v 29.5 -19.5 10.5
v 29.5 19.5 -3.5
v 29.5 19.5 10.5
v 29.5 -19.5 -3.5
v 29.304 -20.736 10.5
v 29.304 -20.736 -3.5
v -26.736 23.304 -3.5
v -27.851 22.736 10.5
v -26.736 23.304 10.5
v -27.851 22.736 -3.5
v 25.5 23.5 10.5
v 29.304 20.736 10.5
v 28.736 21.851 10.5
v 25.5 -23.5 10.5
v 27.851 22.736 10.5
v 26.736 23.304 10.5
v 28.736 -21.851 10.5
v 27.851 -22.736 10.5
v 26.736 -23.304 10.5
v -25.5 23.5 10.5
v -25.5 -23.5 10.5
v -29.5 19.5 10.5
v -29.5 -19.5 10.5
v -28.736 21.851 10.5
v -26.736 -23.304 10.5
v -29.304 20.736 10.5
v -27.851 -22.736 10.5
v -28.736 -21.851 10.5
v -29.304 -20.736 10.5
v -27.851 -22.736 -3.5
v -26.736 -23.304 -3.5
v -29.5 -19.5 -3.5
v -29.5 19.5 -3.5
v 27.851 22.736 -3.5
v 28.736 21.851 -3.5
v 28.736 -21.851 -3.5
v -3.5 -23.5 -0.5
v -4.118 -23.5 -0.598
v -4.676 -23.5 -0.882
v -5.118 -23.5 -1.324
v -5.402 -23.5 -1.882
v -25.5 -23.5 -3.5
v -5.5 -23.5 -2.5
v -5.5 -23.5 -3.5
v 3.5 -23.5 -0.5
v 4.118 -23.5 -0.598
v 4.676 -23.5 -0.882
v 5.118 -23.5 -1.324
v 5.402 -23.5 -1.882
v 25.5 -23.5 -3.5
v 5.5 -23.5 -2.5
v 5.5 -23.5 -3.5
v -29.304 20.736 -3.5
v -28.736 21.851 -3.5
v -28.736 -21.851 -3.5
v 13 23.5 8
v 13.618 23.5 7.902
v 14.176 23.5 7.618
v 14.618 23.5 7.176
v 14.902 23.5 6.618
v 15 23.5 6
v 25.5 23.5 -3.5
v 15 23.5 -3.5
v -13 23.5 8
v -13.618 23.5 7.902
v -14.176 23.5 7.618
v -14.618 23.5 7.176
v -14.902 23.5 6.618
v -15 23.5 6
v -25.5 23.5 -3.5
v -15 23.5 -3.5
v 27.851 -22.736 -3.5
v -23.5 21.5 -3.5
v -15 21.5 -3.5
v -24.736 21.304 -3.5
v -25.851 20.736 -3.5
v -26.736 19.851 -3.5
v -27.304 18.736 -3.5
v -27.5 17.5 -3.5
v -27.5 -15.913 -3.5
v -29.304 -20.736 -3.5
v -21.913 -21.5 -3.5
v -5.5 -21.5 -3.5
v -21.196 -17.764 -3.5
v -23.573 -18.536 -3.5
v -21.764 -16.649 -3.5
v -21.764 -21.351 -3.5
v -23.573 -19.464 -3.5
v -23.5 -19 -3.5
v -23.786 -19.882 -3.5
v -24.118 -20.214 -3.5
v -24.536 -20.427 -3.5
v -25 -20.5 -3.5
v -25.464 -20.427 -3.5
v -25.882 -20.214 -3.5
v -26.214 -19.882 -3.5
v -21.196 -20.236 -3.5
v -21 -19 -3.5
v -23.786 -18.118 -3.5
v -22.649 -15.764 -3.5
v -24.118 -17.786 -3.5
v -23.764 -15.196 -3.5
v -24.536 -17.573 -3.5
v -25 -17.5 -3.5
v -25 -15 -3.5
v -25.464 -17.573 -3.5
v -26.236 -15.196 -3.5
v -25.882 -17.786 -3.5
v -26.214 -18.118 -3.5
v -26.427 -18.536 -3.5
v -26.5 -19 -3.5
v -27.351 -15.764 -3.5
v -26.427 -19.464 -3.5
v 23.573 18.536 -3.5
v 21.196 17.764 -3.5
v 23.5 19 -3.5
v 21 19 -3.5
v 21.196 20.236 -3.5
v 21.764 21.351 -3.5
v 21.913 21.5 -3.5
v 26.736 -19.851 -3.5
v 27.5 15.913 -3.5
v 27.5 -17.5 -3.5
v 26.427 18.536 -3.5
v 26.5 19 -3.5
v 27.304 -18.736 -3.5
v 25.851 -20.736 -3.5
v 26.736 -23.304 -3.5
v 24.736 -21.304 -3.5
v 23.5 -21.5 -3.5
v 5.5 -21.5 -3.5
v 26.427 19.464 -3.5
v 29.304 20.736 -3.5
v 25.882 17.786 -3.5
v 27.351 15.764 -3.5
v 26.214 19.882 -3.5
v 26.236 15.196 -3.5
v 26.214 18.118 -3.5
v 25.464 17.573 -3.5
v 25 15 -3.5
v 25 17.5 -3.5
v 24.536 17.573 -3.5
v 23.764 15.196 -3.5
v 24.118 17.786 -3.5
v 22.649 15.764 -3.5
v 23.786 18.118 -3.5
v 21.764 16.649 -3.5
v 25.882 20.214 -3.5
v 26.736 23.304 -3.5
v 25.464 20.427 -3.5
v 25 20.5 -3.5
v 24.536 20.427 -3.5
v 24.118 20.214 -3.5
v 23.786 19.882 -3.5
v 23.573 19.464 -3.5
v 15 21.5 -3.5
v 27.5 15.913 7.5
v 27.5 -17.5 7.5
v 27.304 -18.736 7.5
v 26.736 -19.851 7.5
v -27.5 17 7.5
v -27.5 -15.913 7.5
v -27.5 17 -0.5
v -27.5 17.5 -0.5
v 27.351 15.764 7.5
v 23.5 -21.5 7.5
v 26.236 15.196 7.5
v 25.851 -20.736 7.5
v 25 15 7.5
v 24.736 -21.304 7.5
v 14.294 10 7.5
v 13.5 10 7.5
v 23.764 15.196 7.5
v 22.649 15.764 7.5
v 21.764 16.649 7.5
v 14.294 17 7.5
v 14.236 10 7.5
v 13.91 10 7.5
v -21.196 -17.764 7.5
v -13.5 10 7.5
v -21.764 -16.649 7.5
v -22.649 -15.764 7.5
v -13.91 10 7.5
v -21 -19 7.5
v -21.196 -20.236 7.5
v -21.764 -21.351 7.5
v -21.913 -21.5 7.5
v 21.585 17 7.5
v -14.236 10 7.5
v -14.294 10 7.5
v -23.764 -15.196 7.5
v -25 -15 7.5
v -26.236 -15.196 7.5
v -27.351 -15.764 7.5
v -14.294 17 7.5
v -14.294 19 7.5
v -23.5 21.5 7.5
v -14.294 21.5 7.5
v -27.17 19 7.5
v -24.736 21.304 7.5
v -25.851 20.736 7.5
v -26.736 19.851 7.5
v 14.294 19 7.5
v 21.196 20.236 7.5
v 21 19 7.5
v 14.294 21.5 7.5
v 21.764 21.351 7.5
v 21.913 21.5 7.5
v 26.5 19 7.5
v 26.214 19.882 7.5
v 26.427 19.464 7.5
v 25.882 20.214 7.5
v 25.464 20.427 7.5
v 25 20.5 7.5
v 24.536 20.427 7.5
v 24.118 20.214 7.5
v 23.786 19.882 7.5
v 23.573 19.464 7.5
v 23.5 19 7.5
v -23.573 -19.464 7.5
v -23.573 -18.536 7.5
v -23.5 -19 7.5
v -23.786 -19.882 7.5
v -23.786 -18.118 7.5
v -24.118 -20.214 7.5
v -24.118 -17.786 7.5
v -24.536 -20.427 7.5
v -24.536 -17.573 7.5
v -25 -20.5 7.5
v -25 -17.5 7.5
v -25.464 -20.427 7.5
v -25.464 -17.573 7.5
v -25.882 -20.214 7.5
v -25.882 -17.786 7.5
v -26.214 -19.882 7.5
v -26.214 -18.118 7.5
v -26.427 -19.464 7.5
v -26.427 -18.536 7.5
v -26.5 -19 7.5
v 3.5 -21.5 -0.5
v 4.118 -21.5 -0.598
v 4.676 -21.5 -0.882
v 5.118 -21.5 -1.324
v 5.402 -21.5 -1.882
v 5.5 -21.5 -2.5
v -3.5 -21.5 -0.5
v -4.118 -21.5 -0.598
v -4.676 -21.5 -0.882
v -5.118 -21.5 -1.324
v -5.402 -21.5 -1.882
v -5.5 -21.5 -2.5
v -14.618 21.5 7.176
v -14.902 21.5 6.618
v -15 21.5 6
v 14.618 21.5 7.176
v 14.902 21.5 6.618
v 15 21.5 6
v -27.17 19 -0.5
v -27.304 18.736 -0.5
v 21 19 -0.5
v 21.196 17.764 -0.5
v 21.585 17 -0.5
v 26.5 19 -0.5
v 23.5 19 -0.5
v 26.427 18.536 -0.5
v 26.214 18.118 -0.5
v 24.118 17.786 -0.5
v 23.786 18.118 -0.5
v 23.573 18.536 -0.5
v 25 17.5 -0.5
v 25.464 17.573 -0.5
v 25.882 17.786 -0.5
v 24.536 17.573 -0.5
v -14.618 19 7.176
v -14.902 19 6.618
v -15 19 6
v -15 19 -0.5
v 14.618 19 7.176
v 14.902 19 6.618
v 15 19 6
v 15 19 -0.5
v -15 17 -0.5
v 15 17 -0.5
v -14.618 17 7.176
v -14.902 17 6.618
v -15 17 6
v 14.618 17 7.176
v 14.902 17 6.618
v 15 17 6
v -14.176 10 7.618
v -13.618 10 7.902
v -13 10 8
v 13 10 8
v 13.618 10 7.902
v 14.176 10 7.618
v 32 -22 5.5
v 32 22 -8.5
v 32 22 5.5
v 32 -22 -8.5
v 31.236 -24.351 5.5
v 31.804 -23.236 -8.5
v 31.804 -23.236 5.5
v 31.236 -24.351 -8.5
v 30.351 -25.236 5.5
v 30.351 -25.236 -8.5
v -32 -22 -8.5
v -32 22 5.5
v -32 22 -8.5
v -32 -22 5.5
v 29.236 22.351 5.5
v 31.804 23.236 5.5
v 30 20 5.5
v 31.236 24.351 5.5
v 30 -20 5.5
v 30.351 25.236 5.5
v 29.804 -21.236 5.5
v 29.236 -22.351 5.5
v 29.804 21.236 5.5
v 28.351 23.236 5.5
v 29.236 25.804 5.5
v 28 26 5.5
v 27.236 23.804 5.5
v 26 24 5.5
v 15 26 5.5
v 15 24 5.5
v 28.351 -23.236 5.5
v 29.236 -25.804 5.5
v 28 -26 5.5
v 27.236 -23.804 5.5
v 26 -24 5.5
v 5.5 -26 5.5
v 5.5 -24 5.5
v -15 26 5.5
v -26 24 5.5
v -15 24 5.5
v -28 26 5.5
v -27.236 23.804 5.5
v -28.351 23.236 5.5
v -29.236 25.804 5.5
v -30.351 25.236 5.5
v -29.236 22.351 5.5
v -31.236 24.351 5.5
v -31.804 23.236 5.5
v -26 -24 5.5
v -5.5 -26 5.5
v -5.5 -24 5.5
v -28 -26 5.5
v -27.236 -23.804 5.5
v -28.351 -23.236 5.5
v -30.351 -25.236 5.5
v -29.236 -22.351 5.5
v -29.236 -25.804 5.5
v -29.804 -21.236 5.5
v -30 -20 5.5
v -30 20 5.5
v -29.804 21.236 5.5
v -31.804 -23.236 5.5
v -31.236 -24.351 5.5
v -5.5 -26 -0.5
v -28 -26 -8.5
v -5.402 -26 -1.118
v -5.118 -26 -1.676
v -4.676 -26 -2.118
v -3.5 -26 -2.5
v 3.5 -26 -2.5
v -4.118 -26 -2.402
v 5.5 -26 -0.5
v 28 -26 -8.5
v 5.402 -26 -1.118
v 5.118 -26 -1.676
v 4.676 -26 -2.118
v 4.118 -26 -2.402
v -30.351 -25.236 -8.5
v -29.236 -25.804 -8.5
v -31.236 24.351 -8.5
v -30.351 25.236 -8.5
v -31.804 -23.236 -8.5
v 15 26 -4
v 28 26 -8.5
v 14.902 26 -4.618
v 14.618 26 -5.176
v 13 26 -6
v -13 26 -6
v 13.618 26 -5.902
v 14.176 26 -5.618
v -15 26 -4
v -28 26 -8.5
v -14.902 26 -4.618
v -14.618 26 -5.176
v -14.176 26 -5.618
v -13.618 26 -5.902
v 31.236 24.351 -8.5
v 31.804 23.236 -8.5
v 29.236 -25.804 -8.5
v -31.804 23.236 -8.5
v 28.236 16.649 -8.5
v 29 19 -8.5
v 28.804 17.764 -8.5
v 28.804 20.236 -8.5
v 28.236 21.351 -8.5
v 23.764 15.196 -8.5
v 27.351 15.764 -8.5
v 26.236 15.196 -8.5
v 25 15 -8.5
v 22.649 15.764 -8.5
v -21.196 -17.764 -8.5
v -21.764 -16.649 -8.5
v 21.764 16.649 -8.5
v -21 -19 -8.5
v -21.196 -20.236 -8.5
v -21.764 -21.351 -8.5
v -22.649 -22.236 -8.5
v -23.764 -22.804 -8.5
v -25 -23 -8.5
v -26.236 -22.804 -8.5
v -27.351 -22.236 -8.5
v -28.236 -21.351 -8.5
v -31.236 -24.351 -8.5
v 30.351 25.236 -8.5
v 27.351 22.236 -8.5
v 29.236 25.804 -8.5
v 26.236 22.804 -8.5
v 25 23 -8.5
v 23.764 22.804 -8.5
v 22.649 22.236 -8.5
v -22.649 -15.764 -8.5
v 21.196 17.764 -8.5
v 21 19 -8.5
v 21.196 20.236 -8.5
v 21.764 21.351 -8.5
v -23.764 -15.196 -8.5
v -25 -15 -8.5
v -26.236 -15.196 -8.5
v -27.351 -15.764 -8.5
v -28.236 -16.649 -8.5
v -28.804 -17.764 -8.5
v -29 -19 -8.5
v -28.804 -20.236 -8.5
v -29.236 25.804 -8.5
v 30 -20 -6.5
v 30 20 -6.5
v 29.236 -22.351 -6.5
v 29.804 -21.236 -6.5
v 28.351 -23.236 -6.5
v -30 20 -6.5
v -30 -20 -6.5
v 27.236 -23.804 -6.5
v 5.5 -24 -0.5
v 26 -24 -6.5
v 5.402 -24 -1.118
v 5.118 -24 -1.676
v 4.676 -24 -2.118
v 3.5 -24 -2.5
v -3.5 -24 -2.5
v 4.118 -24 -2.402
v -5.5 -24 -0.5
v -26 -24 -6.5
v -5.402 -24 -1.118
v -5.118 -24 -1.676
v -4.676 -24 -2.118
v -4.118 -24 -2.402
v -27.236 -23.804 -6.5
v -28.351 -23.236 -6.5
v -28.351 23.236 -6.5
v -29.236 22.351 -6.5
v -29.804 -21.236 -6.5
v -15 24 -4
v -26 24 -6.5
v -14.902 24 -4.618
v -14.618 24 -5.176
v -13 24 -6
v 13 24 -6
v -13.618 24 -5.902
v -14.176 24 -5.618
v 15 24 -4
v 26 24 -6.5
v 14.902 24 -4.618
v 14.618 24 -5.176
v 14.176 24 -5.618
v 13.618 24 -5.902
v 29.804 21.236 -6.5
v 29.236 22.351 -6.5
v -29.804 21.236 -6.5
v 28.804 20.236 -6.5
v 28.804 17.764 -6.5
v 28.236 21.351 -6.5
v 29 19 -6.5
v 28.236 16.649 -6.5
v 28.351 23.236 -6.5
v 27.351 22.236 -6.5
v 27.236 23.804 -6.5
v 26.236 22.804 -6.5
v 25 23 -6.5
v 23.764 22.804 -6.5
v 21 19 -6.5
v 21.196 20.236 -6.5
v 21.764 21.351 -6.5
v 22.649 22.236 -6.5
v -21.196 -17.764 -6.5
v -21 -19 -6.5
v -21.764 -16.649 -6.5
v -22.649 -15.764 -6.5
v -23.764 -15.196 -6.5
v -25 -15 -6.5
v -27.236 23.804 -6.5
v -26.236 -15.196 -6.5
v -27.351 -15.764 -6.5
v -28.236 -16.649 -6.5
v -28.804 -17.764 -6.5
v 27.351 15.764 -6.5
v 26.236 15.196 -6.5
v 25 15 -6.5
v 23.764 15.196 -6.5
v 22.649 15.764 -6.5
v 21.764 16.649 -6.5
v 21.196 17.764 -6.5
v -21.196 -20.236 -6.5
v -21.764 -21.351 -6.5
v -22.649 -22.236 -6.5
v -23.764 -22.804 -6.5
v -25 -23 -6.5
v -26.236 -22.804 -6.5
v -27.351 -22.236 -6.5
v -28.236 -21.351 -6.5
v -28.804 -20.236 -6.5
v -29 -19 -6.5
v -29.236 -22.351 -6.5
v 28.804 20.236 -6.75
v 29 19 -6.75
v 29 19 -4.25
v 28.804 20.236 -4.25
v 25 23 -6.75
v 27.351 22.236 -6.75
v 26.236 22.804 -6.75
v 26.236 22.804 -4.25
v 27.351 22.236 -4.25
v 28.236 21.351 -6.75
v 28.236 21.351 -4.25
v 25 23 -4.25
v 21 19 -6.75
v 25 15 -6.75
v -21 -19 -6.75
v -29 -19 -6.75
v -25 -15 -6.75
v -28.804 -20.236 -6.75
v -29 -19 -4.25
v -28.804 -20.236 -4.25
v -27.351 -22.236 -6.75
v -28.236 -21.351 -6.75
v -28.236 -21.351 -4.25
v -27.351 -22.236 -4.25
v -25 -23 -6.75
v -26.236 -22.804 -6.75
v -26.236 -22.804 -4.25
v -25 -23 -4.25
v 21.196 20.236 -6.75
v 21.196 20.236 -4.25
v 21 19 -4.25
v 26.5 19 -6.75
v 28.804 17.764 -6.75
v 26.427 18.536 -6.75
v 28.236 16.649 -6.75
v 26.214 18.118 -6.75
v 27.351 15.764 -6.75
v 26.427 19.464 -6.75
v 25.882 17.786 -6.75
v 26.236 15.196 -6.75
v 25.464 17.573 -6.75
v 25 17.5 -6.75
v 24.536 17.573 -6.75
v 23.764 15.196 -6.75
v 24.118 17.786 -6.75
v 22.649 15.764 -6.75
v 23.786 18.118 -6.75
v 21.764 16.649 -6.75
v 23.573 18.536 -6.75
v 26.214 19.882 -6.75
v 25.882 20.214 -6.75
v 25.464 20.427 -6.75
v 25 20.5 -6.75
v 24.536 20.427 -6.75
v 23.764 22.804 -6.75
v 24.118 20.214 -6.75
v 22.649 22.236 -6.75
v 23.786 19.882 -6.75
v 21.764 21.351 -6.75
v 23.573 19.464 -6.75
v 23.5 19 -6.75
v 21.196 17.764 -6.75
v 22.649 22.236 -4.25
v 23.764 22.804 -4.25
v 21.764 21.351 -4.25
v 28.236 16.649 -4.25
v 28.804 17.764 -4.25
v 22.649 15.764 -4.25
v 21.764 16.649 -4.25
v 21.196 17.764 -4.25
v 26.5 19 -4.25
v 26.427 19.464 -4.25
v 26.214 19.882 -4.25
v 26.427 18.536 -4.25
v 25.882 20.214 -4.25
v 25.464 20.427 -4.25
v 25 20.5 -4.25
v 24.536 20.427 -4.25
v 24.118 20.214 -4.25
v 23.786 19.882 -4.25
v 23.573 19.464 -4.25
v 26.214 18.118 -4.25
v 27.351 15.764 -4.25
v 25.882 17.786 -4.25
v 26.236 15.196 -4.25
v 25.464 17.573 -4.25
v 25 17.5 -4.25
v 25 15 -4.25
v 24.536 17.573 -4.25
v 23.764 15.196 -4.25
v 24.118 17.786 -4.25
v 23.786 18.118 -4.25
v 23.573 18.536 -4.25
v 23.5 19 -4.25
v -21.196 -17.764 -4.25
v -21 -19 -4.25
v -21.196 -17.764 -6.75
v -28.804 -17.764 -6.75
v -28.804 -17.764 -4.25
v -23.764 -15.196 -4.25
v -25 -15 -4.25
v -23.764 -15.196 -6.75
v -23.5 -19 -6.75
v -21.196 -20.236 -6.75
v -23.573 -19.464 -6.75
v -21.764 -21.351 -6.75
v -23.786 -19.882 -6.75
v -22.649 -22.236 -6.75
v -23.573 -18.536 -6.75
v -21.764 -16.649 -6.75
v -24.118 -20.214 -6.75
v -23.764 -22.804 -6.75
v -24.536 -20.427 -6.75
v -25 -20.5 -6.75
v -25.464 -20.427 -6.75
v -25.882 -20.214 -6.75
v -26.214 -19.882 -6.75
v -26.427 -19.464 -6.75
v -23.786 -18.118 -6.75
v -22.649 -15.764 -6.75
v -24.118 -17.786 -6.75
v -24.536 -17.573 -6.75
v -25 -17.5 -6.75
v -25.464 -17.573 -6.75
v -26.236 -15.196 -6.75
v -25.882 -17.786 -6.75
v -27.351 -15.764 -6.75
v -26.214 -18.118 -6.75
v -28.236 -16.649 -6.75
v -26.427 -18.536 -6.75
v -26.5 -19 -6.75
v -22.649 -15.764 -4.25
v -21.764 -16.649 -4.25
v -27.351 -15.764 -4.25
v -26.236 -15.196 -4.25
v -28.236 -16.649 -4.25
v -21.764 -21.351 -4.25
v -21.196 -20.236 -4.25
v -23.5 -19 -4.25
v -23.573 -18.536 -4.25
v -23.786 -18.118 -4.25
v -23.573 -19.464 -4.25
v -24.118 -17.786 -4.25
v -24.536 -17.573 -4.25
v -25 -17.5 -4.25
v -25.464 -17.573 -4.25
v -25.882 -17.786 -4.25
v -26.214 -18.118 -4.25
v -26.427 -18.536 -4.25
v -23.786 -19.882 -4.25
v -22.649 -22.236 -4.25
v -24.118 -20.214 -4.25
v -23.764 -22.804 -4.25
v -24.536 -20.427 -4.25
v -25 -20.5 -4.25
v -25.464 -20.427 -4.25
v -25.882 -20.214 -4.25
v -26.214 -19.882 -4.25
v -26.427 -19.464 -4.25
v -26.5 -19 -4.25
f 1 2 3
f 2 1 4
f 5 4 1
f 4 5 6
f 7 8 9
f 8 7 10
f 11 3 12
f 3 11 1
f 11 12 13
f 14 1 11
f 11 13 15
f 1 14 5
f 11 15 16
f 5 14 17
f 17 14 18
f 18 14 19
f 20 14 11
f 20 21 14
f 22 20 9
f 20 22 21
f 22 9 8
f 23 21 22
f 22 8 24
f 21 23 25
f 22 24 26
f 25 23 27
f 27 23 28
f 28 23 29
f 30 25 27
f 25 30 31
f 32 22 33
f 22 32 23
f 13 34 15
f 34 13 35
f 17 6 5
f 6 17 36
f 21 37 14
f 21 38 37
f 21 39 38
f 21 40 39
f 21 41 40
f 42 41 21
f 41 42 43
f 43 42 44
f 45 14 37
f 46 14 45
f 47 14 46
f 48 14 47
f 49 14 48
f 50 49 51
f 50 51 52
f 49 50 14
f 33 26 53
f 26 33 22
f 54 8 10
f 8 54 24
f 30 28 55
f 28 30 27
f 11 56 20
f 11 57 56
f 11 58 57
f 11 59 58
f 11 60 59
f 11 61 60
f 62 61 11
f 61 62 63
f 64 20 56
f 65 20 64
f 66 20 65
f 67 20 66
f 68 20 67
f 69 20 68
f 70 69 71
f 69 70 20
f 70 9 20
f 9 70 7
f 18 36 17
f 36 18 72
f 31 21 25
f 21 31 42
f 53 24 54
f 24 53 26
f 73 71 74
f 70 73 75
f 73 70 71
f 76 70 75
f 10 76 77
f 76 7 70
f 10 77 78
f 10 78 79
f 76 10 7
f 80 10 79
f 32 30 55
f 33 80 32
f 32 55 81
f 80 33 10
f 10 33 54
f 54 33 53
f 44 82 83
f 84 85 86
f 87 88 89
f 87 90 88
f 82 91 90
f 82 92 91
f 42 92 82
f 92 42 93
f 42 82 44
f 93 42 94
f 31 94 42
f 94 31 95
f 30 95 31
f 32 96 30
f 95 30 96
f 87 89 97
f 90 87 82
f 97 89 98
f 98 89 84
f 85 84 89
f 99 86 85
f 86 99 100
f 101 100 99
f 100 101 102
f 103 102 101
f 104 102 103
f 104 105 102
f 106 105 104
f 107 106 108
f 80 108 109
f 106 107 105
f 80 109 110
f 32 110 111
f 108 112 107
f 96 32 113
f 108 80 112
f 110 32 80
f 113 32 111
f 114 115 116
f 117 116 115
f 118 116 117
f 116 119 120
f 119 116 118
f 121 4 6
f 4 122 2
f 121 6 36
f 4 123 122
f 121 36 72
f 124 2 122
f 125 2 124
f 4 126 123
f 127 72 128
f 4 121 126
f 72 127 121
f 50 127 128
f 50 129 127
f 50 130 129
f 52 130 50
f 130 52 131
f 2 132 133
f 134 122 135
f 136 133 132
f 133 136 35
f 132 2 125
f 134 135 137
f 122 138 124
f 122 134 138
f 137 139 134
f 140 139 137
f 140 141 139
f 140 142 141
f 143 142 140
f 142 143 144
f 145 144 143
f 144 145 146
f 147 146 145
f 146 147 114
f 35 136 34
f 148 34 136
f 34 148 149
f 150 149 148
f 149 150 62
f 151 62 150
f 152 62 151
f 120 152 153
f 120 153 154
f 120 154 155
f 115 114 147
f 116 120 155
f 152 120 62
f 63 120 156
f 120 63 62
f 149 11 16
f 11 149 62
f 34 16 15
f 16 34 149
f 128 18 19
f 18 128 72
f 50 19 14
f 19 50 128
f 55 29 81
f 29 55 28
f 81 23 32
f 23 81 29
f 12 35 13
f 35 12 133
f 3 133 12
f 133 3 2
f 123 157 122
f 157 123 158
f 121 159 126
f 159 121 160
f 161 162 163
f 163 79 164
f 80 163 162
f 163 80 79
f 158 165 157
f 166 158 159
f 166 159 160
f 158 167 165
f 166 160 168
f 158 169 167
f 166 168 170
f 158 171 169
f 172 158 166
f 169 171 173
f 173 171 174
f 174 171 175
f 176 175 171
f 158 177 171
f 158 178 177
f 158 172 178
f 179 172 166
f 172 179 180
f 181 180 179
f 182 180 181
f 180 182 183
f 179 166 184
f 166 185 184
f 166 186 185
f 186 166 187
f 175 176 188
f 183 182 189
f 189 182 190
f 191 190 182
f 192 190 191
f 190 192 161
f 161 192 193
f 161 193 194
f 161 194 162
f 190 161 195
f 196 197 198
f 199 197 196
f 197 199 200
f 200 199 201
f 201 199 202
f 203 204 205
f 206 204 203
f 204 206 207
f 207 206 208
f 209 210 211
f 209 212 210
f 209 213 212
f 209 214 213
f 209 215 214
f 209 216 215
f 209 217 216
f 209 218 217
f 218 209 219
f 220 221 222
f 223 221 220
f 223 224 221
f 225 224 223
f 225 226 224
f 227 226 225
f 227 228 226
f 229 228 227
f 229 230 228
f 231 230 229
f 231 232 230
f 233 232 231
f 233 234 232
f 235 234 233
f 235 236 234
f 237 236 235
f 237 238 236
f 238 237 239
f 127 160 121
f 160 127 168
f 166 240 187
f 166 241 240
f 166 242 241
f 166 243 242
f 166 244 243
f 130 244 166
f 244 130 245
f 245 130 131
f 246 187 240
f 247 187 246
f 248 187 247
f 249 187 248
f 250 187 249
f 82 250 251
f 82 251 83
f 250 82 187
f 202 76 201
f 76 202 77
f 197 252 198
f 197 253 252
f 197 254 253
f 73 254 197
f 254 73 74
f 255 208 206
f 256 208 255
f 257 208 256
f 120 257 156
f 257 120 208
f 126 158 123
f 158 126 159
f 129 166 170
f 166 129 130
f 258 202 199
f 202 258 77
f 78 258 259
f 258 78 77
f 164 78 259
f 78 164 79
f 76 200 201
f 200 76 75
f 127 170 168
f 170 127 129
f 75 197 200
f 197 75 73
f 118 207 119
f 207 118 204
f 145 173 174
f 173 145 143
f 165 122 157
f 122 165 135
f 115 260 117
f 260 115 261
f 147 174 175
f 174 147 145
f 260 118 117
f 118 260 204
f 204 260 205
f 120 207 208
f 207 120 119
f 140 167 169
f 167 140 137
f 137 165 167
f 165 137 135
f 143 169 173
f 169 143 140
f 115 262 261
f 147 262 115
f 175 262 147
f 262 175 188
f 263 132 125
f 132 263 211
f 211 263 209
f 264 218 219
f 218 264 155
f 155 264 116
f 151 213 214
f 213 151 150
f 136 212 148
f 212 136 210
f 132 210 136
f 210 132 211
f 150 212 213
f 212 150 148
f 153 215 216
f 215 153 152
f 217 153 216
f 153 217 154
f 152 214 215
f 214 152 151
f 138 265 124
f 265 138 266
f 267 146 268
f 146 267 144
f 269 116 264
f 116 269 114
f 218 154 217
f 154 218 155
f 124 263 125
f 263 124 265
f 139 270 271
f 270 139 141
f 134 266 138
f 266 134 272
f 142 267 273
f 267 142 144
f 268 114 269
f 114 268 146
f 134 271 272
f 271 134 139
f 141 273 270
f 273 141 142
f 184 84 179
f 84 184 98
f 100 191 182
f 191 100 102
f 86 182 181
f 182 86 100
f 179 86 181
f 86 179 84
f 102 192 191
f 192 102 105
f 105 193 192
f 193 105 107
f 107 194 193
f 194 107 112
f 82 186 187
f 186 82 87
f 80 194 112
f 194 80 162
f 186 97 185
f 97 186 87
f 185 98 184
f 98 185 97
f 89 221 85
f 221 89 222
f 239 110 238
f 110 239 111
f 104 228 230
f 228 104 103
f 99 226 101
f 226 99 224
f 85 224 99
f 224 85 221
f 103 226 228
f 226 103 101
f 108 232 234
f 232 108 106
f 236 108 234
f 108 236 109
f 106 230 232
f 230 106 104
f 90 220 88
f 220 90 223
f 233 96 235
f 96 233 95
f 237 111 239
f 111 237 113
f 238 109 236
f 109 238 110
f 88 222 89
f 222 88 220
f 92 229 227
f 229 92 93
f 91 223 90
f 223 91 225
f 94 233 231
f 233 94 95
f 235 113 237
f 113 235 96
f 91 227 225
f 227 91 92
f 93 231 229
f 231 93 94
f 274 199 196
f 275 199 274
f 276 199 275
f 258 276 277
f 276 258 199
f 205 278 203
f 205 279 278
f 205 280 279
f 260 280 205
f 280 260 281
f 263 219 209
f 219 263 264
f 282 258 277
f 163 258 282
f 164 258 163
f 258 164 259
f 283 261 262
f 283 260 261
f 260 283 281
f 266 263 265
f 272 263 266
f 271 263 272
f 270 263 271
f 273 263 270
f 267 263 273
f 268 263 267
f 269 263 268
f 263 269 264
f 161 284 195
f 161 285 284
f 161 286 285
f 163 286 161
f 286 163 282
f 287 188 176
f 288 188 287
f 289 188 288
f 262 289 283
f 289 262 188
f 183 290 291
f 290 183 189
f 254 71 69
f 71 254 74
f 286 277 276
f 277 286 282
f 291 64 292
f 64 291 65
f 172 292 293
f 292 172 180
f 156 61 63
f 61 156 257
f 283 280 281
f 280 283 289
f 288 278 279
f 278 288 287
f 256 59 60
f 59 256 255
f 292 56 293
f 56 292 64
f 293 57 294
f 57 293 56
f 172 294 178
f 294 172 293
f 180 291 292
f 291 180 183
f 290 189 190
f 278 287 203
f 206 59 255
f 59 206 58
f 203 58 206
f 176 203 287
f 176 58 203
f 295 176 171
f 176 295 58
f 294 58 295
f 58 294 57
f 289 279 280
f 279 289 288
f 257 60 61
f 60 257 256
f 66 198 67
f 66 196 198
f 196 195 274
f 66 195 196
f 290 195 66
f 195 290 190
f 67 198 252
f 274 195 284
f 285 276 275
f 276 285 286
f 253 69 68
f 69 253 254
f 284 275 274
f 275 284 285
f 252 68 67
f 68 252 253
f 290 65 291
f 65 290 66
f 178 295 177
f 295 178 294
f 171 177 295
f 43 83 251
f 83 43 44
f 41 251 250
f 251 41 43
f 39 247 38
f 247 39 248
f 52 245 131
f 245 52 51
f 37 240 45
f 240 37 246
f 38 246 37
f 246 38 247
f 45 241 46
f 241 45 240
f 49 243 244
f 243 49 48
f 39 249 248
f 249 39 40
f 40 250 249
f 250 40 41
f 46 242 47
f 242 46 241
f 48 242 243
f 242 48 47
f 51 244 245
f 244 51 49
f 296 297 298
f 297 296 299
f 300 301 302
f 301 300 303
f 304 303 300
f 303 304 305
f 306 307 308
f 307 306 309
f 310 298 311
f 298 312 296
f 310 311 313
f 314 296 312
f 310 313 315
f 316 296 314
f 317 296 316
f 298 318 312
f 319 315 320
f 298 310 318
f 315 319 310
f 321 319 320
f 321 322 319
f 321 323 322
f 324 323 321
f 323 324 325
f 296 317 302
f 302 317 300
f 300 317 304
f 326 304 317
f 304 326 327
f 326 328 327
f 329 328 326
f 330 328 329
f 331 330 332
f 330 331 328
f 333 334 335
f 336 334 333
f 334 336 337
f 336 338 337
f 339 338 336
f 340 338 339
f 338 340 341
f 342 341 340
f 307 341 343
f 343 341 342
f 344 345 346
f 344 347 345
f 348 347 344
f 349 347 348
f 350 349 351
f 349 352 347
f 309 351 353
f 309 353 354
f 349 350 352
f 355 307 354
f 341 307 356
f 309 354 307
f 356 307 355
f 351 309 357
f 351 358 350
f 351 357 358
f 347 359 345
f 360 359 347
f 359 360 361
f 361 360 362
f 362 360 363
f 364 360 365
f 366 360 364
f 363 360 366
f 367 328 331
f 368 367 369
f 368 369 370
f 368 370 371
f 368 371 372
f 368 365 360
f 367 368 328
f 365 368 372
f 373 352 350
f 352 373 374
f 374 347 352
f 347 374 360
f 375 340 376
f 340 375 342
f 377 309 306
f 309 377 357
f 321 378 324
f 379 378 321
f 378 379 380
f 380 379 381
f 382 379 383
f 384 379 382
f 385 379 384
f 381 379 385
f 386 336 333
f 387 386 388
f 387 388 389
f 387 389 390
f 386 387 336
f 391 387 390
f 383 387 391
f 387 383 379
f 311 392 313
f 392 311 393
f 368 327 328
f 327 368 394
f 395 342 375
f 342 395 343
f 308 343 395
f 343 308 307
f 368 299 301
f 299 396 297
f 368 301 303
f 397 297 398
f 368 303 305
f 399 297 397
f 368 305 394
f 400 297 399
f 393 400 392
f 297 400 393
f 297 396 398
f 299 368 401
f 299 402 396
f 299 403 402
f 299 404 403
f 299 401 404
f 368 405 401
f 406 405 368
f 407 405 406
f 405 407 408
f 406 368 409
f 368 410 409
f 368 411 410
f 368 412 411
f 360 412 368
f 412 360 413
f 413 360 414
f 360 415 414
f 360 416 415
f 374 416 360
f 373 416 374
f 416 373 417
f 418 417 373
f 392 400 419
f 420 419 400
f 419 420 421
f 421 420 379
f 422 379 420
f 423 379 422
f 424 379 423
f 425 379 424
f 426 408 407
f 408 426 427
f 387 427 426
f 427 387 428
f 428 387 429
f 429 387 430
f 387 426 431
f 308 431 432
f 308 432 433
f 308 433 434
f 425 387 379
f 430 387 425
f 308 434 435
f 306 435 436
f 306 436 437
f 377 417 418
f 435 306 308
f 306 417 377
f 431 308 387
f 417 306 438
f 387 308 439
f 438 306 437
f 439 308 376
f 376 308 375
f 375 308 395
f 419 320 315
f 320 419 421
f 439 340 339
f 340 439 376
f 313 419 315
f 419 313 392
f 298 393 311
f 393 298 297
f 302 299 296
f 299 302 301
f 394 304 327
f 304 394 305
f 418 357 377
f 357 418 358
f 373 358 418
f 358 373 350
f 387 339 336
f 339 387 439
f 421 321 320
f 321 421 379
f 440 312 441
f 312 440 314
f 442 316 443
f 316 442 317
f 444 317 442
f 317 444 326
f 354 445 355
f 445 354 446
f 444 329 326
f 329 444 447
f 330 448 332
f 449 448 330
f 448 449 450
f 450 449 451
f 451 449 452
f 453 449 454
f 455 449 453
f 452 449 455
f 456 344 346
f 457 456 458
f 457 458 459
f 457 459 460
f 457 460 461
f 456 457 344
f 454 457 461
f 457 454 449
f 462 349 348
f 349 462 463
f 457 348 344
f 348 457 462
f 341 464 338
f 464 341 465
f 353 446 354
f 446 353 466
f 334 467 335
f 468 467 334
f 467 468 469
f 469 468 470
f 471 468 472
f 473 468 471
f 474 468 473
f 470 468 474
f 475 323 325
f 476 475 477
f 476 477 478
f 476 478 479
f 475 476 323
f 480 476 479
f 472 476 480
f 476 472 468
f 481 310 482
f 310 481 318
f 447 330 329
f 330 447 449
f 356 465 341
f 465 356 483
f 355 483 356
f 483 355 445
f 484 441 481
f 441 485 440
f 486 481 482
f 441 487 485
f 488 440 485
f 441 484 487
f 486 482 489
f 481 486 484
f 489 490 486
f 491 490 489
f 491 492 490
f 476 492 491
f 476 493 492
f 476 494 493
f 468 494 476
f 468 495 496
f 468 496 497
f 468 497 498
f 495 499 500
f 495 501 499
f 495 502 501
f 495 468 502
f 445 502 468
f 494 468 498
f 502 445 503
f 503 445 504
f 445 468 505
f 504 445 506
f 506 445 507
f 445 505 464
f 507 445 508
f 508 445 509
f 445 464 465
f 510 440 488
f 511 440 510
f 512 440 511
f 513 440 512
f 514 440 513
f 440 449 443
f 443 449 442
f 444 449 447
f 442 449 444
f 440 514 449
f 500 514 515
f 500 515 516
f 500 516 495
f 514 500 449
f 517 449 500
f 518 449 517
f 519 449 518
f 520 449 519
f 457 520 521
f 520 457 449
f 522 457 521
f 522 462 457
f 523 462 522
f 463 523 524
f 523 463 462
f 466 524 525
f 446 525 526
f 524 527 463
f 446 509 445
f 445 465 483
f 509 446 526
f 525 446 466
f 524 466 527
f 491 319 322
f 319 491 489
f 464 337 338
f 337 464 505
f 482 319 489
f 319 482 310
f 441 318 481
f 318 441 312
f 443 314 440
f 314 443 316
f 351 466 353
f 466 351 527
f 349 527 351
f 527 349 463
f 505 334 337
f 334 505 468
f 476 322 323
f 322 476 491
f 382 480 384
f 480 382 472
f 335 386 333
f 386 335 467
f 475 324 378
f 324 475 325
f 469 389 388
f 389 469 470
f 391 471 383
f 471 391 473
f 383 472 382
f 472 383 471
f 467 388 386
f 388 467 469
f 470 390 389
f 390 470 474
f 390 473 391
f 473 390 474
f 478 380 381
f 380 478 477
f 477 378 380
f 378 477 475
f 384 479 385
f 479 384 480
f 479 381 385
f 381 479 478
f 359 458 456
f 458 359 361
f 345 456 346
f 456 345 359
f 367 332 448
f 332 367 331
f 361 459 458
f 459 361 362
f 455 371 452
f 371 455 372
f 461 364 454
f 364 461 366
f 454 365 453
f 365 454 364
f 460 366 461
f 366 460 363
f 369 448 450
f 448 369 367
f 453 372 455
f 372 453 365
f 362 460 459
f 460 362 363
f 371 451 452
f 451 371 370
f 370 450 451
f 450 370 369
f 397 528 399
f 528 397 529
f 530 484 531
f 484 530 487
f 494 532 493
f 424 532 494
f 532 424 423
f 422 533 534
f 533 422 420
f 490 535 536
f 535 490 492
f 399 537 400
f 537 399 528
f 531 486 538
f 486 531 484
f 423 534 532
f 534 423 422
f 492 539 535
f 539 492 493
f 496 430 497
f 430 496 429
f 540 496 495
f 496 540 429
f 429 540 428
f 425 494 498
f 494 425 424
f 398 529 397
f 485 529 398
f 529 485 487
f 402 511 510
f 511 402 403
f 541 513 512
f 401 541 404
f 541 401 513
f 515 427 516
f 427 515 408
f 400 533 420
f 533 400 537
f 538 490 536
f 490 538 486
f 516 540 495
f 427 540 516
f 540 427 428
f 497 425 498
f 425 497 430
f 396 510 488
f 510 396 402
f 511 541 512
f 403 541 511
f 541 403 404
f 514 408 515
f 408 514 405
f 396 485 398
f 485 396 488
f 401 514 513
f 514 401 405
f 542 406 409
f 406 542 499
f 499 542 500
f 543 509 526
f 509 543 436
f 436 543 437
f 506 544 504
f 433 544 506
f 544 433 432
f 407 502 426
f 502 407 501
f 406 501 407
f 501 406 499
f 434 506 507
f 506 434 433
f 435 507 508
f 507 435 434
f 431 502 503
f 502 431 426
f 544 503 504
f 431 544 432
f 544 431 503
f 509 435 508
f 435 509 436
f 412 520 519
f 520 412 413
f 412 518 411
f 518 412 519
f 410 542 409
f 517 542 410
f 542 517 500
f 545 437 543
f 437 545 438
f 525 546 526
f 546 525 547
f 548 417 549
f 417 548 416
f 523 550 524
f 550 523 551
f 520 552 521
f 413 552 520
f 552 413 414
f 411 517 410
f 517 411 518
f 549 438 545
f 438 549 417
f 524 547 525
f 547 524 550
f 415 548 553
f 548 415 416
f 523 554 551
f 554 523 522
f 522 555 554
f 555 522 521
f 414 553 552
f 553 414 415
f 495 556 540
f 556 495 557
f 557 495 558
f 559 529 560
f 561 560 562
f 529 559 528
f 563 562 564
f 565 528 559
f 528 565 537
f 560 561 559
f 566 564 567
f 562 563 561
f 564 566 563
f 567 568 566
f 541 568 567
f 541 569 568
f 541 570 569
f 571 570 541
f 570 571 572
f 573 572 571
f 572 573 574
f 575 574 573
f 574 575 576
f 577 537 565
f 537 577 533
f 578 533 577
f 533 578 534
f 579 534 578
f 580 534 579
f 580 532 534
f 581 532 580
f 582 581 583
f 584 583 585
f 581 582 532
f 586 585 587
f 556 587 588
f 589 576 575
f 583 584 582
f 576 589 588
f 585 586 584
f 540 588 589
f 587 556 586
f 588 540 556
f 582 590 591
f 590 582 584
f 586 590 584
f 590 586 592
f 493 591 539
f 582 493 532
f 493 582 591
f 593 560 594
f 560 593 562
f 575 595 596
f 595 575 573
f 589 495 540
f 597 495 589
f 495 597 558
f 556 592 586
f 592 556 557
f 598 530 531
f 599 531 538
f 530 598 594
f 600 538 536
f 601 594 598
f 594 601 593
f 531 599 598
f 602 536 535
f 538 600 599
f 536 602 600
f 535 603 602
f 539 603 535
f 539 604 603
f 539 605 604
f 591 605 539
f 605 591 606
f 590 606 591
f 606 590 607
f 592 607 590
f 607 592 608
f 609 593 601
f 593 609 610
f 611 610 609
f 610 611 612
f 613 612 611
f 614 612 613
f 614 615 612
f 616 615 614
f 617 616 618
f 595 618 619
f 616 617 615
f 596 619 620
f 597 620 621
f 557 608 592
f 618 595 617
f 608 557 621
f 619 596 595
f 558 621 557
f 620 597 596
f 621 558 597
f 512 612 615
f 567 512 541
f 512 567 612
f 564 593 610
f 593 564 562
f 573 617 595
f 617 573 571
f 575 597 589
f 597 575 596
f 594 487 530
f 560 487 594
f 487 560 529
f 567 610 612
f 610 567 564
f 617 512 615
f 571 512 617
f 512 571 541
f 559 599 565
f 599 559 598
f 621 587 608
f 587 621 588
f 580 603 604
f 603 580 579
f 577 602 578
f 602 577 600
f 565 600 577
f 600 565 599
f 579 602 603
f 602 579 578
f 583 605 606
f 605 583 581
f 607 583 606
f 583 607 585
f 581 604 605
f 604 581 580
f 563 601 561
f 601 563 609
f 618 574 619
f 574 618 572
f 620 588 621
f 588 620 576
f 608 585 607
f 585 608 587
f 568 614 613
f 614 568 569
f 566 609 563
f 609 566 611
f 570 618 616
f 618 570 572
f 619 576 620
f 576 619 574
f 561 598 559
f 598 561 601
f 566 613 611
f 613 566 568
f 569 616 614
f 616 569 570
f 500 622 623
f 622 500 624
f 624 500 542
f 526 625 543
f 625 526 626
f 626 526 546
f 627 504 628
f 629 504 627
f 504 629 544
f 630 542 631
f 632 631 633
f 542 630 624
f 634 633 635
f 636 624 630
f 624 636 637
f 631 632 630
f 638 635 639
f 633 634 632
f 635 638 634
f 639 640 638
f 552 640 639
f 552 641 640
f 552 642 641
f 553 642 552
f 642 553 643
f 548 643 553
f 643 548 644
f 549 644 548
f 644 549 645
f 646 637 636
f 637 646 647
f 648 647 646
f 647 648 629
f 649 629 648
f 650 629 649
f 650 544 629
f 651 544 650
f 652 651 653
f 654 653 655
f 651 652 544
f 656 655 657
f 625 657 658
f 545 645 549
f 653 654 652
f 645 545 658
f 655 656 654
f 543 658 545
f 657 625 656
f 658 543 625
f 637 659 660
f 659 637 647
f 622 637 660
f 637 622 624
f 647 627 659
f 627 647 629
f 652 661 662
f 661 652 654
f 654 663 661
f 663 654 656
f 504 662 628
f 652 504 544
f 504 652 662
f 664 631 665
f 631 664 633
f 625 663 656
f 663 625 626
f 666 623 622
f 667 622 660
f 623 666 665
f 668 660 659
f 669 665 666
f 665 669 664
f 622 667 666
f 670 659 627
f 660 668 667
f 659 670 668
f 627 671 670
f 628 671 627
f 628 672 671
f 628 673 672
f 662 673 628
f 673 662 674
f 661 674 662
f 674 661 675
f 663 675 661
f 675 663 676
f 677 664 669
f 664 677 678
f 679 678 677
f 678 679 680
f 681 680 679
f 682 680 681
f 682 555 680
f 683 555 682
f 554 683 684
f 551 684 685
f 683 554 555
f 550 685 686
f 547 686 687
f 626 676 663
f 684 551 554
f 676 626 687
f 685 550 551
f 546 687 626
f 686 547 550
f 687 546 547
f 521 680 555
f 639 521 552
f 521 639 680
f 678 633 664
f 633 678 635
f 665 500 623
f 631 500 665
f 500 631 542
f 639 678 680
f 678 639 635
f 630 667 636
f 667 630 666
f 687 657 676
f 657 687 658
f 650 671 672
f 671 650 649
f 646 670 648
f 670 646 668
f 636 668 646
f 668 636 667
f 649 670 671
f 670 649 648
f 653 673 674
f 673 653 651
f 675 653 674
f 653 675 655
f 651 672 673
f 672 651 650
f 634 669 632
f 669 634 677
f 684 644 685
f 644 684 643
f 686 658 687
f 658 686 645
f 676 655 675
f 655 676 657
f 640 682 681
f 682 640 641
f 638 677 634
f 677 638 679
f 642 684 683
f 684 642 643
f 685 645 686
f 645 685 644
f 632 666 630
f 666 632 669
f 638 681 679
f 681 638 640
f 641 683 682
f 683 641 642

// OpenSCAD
/*
    tamaño de la caja interna y borde
*/
X=60;
Y=48;
Z=13;
E=4;
$fn=20;

module base () {
// base
difference() {
translate([0,0,-2])
   minkowski () {
    cube([X+E-8,Y+E-8,Z],center=true);
   cylinder(d=8, h=1);
}

minkowski() {   
   cube([X-8,Y-8,Z],center=true);
   cylinder(d=8, h=1);
}
// db9
minkowski () {
    translate([0,24,1])
    cube([30-4,30-4,13-3],center=true);
   rotate([90,0,0]) 
    cylinder(d=4, h=1);
}
// cable
minkowski () {
    translate([0,-24,3])
    cube([7,11,7],center=true);   
   rotate([90,0,0]) 
    cylinder(d=4, h=1);
}


translate([0,Y/2-E-4,4])
        cube([X-E,E/2,Z-E],center=true); 
            // tornillos

       
        translate([(X/2)-5,(Y/2)-5,-8])
            difference() {
        cylinder(h=4, r=E, center=true);
      
        }
        translate([(X*-1/2)+5,(Y*-1/2)+5,-8])
          difference() {
        cylinder(h=4, r=E, center=true);

        }
            
        
}


    // tornillos
        translate([(X/2)-5,(Y/2)-5,-5.5])
            difference() {
              cylinder(h=2.5, r=E, center=true);
              cylinder(h=2.5, r=1.5, center=true);
            }
        translate([(X*-1/2)+5,(Y*-1/2)+5,-5.5])
          difference() {
            cylinder(h=2.5, r=E, center=true);
            cylinder(h=2.5, r=1.5, center=true);
          }

}


 
/*
font="Oxygene 1";

// texto
 linear_extrude(height = 0.5) {
    text("RETRO", font = font);
    translate([0,10,0])
    text("JOYSTICK", font = font, size=7);
}
 
 */

module tapa () {
    // tapa
    difference() {
           union() {
        difference() {
            translate([0,0,3])
               minkowski () {
                cube([X+E-13,Y+E-13,Z],center=true);
               cylinder(d=8, h=1);
            }
            // interior
            minkowski() {   
               cube([X-13,Y-13,Z],center=true);
               cylinder(d=8, h=1);
            }
            }
        translate([0,Y/2-E-2,4])
        cube([X-E,E/2,Z-E],center=true); 
            // tornillos
        translate([(X/2)-5,(Y/2)-5,3])
            difference() {
        cylinder(h=Z, r=E, center=true);
          cylinder(h=Z, r=1.5, center=true);
        }
        translate([(X*-1/2)+5,(Y*-1/2)+5,3])
          difference() {
        cylinder(h=Z, r=E, center=true);
          cylinder(h=Z, r=1.5, center=true);
        }
            }
      
            // db15
minkowski () {
    translate([0,24,1])
    cube([30-4,30-4,13-3],center=true);
   rotate([90,0,0]) 
    cylinder(d=4, h=1);
}

        // cable
        minkowski () {
            translate([0,-24,-6])
            cube([7,10,7],center=true);   
           rotate([90,0,0]) 
            cylinder(d=4, h=1);
        }
    }

}

tapa();
base();
